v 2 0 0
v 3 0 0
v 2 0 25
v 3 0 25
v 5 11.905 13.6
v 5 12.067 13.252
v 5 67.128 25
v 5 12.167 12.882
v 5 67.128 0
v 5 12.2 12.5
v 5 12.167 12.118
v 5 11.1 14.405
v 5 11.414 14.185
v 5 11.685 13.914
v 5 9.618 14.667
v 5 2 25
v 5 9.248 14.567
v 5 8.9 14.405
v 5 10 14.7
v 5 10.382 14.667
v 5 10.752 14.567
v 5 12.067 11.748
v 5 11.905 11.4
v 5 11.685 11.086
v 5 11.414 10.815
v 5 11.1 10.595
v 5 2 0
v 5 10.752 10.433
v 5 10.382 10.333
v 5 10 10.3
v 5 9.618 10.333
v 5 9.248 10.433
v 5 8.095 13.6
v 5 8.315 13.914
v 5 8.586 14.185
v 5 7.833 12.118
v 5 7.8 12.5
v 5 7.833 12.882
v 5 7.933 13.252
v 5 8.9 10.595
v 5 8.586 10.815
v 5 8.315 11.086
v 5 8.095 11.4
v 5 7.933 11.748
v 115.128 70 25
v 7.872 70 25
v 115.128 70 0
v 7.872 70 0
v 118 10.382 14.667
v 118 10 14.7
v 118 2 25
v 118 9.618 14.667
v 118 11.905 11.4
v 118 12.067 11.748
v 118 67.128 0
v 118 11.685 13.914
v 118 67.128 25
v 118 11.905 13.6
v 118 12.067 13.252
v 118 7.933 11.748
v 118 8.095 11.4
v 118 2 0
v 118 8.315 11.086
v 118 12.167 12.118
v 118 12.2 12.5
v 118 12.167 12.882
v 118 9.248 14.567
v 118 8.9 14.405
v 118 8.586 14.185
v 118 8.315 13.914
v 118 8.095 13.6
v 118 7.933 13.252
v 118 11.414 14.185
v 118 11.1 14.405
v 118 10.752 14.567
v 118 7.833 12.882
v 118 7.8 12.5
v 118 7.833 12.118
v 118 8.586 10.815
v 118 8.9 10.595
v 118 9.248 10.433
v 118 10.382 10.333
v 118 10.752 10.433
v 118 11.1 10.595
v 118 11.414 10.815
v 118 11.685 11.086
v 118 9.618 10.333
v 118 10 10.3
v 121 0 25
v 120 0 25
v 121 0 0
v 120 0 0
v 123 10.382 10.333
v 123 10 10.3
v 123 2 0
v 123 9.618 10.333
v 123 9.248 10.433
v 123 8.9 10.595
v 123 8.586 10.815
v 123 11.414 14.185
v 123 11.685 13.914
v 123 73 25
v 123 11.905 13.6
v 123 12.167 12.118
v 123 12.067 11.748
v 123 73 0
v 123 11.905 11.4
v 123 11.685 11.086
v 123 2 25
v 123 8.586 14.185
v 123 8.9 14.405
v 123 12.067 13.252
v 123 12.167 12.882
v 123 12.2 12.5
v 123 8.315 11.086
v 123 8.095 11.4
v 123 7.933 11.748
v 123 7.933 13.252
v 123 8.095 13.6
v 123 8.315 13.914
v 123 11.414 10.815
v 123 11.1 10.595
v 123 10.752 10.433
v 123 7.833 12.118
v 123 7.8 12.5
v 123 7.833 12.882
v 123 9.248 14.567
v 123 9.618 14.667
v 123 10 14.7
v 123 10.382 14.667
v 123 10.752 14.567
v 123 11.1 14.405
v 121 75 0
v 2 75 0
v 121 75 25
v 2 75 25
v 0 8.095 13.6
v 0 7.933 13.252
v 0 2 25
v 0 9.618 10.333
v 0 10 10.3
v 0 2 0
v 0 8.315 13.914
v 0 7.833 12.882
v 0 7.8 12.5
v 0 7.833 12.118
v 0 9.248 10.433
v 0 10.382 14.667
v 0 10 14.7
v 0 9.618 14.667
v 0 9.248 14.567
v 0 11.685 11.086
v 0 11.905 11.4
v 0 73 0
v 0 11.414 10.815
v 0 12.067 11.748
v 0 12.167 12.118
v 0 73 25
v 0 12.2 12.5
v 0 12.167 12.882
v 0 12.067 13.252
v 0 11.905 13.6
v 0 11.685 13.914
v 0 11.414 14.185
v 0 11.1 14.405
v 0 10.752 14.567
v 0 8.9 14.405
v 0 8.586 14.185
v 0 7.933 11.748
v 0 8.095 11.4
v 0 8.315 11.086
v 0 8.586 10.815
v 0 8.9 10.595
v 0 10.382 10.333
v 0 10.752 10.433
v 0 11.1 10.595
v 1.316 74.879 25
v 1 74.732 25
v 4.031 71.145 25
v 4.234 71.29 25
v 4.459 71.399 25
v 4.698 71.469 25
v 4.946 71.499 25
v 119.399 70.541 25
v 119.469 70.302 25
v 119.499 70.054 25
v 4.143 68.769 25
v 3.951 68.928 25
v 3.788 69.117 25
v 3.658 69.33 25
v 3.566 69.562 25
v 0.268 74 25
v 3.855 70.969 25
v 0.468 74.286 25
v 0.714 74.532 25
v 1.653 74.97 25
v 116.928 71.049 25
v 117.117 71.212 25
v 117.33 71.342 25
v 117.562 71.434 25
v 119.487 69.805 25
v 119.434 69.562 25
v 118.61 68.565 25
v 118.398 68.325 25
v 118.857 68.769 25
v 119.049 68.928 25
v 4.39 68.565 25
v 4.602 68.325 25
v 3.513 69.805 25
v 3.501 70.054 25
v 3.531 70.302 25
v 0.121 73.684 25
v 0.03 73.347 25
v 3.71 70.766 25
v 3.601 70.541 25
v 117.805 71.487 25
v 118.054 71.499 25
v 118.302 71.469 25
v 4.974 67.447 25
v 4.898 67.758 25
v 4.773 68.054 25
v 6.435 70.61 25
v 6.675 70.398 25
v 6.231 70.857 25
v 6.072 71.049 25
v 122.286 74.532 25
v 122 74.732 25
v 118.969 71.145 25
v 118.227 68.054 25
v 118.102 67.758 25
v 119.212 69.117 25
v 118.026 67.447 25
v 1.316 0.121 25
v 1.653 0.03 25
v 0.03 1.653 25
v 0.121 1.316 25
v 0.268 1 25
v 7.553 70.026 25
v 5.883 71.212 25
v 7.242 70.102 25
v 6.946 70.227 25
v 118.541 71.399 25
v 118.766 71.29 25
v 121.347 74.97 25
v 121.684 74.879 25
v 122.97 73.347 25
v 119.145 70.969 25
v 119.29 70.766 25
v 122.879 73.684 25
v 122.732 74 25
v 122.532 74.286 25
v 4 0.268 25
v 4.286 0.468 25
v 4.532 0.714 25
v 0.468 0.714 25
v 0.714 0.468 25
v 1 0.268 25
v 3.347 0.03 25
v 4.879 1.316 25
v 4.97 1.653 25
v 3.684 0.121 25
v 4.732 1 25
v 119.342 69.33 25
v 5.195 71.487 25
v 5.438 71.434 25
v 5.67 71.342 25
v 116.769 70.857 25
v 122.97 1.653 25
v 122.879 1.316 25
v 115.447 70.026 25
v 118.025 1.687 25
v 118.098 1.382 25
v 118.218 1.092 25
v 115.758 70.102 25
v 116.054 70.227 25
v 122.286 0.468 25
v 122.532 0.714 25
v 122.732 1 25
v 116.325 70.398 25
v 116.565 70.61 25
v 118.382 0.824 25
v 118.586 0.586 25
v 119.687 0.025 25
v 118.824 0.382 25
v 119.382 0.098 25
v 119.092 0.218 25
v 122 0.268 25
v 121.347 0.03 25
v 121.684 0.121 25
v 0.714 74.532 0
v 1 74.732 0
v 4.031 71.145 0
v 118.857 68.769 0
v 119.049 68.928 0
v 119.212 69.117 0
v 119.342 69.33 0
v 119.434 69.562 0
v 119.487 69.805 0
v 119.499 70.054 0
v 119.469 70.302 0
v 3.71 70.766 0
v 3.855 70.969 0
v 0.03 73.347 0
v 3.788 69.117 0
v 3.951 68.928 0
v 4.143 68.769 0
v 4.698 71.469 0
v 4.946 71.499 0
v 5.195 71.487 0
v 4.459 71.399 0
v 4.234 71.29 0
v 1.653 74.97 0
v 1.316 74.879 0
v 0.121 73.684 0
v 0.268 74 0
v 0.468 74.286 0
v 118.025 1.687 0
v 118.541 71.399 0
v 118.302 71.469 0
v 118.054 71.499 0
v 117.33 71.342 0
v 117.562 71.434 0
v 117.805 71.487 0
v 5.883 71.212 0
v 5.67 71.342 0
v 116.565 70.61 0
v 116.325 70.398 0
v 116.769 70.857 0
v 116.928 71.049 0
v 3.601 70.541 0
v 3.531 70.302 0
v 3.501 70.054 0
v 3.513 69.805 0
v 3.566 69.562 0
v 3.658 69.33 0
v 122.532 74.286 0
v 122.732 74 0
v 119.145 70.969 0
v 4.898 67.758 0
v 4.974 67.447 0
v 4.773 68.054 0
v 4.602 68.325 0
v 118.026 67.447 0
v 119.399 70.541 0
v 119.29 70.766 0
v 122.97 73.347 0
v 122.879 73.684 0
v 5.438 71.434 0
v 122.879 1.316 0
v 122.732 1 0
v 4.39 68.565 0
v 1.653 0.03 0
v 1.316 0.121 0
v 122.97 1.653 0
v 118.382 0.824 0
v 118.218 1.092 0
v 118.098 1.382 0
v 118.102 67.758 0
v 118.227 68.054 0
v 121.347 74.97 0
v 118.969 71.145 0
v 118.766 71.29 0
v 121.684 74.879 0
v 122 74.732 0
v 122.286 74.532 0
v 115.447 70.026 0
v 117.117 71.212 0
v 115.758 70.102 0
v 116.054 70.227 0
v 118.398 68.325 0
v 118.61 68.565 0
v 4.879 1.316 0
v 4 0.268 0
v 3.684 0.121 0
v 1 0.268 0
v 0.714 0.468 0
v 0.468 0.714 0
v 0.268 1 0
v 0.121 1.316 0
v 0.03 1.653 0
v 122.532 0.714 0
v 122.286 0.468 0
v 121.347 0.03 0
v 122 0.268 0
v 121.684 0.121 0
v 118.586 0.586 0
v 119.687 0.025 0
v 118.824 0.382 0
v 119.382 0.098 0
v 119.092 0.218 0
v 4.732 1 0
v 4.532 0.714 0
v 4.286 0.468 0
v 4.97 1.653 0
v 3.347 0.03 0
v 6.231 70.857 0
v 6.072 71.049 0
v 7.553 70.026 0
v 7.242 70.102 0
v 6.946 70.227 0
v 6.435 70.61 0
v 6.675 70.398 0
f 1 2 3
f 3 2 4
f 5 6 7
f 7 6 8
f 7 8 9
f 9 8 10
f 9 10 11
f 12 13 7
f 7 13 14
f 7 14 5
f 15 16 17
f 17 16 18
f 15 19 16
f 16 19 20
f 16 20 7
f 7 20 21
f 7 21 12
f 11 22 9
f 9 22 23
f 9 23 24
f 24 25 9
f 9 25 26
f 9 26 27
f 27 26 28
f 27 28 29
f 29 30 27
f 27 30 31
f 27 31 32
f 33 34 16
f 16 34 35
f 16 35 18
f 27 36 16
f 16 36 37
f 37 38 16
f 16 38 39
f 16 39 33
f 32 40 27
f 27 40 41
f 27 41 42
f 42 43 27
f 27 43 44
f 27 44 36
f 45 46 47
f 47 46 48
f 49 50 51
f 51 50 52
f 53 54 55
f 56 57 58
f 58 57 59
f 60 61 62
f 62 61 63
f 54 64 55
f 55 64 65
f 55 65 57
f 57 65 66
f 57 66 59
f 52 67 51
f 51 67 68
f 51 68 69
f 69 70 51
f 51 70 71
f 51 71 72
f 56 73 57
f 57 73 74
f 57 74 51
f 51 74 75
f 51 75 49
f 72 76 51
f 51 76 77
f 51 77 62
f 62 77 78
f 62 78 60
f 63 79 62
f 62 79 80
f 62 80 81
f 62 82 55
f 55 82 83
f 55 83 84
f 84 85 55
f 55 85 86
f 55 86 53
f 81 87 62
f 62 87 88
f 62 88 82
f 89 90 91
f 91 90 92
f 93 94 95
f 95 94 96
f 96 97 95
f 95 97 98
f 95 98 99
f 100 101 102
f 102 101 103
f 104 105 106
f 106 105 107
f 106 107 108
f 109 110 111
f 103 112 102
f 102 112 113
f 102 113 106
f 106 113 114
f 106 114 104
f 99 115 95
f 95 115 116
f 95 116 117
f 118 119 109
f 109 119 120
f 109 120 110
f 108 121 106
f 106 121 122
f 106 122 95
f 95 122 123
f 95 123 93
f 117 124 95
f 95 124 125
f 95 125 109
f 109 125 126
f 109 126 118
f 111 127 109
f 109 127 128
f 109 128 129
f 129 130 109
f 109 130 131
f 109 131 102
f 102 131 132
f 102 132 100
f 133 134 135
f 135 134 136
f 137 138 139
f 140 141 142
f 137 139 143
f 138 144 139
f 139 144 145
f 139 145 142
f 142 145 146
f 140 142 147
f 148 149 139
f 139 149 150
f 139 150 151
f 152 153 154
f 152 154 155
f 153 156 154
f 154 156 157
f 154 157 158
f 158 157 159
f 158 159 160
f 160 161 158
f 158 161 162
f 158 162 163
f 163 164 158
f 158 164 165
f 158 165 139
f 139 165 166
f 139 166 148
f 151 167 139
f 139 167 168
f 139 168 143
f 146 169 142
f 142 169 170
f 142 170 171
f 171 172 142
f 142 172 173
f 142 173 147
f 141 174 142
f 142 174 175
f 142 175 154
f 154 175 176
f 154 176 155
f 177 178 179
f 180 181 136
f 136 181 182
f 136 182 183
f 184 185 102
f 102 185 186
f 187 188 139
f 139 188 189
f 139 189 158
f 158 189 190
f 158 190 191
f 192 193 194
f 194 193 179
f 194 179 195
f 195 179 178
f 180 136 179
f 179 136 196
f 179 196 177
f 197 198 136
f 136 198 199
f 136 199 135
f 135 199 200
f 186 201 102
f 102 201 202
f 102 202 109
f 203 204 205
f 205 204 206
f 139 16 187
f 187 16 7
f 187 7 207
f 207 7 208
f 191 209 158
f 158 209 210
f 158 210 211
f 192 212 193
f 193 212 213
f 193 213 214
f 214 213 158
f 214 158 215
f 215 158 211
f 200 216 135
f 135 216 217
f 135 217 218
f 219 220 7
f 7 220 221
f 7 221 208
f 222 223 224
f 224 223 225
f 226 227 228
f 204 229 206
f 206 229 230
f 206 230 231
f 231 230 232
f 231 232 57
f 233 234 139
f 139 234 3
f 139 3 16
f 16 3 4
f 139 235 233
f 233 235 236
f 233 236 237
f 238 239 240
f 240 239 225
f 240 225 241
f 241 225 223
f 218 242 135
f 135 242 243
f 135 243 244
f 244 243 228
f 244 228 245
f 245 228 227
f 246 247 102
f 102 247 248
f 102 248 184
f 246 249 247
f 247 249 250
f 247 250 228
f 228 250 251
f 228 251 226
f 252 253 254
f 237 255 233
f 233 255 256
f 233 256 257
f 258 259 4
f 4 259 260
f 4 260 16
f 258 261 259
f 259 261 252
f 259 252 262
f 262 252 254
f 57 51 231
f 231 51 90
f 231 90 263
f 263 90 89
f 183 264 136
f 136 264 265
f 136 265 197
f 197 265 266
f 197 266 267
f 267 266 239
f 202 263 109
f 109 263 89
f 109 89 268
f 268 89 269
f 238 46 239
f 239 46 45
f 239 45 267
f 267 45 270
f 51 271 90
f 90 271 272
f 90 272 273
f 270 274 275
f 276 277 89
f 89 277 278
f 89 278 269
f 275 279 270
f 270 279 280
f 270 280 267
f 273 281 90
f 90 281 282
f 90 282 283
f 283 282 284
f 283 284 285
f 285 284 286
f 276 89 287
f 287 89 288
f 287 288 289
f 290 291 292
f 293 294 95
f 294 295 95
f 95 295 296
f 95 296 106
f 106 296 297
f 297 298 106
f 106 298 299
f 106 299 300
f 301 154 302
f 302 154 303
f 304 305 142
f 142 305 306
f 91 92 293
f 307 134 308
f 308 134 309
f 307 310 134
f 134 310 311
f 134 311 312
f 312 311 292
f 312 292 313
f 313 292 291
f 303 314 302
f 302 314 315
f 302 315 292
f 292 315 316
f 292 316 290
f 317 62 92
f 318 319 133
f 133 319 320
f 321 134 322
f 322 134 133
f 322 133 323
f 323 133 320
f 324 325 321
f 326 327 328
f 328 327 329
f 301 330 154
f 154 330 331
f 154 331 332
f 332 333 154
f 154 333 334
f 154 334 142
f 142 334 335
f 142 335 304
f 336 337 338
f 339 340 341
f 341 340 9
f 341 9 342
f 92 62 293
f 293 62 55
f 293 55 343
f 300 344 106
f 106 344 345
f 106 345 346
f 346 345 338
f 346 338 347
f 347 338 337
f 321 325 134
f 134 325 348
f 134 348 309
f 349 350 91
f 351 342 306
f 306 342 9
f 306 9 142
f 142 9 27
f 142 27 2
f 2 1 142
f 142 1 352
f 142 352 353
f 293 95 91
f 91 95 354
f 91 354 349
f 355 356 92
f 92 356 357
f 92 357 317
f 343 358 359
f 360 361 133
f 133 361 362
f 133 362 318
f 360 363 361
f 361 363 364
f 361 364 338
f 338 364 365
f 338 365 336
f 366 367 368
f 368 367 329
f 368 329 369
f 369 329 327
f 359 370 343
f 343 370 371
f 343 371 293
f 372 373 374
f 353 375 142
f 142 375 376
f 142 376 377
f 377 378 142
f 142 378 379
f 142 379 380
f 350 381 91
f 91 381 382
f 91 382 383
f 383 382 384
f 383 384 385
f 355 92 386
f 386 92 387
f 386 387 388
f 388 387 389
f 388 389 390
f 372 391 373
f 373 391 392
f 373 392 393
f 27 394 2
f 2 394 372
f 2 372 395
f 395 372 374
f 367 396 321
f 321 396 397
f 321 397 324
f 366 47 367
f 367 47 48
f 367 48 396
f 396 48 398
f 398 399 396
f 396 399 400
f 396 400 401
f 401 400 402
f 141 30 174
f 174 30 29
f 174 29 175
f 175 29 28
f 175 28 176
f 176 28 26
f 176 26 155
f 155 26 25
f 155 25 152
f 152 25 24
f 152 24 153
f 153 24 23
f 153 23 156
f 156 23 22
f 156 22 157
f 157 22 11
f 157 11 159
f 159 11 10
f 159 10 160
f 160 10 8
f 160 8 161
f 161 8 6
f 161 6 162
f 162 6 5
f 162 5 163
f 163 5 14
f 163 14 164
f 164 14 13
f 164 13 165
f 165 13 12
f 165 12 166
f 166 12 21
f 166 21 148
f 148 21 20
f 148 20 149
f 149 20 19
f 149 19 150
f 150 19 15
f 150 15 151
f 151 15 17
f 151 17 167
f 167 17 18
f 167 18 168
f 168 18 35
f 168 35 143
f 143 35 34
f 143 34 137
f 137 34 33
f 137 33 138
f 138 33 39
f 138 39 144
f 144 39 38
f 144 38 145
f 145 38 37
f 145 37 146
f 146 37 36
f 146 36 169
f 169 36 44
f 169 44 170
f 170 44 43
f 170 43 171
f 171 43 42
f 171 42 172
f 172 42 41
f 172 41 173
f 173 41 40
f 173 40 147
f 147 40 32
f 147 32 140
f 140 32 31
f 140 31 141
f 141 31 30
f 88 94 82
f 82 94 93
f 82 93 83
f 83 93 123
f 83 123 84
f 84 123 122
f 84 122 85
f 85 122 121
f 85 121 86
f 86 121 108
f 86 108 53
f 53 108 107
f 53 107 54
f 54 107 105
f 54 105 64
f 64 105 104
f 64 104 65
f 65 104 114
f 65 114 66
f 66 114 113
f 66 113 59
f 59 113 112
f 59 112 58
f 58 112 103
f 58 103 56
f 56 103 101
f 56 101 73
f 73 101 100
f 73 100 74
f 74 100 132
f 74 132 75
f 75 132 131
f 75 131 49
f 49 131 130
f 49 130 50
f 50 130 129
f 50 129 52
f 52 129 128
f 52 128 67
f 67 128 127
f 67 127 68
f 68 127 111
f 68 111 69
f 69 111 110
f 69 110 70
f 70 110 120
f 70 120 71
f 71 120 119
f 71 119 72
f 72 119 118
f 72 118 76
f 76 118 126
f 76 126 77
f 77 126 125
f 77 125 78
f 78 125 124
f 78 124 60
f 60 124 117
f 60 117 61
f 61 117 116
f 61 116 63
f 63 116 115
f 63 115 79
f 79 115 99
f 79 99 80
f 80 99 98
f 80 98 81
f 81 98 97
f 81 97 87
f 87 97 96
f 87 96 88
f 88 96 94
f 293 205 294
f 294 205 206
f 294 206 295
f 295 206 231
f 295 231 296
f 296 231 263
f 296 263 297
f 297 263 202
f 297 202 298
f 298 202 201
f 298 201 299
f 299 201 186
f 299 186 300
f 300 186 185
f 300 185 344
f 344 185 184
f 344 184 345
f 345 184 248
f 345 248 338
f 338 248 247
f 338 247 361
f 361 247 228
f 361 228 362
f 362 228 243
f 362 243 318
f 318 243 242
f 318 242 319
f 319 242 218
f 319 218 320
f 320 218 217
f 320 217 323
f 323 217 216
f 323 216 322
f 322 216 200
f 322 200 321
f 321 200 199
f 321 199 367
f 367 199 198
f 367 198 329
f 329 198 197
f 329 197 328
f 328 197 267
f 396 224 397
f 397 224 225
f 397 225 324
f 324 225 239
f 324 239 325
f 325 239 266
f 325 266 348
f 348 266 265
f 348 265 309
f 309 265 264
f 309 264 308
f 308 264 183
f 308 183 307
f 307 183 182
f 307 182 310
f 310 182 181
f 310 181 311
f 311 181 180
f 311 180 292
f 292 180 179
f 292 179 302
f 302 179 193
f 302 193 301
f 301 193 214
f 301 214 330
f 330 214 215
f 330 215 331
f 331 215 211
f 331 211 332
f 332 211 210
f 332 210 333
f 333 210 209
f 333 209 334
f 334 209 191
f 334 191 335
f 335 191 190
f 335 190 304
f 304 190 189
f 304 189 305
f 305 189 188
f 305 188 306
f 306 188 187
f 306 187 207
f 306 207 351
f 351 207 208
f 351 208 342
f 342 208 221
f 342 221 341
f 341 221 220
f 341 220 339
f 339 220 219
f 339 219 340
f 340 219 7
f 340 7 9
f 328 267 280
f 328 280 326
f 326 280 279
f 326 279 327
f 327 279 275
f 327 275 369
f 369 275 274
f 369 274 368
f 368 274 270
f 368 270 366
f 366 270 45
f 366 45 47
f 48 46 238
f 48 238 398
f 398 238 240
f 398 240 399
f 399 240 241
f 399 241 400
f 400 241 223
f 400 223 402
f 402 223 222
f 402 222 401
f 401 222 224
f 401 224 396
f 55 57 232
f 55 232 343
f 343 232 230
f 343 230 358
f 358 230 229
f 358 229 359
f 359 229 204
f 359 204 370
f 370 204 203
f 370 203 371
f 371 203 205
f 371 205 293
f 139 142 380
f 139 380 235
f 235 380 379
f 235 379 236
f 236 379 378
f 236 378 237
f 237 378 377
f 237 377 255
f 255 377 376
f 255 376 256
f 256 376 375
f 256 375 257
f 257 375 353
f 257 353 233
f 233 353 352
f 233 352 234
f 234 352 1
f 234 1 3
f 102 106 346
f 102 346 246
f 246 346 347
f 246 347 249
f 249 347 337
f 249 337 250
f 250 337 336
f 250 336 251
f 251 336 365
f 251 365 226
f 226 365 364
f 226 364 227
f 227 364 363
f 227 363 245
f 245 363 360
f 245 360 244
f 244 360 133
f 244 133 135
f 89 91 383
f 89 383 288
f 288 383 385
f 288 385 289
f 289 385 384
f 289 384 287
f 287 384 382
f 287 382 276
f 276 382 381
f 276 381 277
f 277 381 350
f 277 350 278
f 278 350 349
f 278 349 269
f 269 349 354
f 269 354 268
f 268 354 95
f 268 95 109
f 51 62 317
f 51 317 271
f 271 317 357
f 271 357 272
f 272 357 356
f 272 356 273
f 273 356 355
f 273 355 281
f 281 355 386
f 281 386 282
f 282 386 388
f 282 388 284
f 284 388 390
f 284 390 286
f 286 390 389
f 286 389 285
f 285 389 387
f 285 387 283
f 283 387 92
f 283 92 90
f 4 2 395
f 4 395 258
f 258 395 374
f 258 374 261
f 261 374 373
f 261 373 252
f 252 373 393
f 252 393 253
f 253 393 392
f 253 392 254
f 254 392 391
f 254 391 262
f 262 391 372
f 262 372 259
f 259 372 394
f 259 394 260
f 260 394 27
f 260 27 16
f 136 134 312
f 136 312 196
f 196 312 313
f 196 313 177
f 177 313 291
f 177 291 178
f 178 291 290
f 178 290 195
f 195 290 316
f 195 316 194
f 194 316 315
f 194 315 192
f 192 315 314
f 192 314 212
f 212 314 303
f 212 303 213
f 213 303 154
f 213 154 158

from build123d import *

# Parameters (mm, degrees)
EXTRUDE_1_DEPTH     = 25
SKETCH_2_R          = 2.2
CUT_EXTRUDE_2_DEPTH = 147.215594244
SKETCH_3_R          = 1.5
CUT_EXTRUDE_3_DEPTH = 147.215594244
FILLET_1_R          = 2


with BuildPart() as part:
    # ｽｹｯﾁ1 → ﾎﾞｽ - 押し出し1 (new body)
    with BuildSketch(Plane.XY):
        Polygon((0, 0), (0, 75), (123, 75), (123, 0), (118, 0), (118, 70), (5, 70), (5, 0), align=None)
    extrude(amount=EXTRUDE_1_DEPTH)

    # ｽｹｯﾁ2 → ｶｯﾄ - 押し出し2 (cut, through all)
    with BuildSketch(Plane(origin=(123, 0, 0), x_dir=(0, 0, -1), z_dir=(1, 0, 0))):
        with Locations((-12.5, 10)):
            Circle(SKETCH_2_R)
    extrude(amount=-CUT_EXTRUDE_2_DEPTH, mode=Mode.SUBTRACT)

    # ｽｹｯﾁ3 → ｶｯﾄ - 押し出し3 (cut, through all)
    with BuildSketch(Plane.XY.offset(25)):
        with Locations((5, 70)):
            Circle(SKETCH_3_R)
        with Locations((118, 70)):
            Circle(SKETCH_3_R)
    extrude(amount=-CUT_EXTRUDE_3_DEPTH, mode=Mode.SUBTRACT)

    # ﾌｨﾚｯﾄ1
    fillet_1_edges = [part.edges().sort_by_distance(p)[0] for p in [
        (0, 0, 12.5),
        (0, 75, 12.5),
        (123, 75, 12.5),
        (123, 0, 12.5),
        (118, 0, 12.5),
        (5, 0, 12.5),
        (5, 68.5, 12.5),
        (6.5, 70, 12.5),
        (116.5, 70, 12.5),
        (118, 68.5, 12.5),
    ]]
    fillet(fillet_1_edges, radius=FILLET_1_R)


solid = part.part
